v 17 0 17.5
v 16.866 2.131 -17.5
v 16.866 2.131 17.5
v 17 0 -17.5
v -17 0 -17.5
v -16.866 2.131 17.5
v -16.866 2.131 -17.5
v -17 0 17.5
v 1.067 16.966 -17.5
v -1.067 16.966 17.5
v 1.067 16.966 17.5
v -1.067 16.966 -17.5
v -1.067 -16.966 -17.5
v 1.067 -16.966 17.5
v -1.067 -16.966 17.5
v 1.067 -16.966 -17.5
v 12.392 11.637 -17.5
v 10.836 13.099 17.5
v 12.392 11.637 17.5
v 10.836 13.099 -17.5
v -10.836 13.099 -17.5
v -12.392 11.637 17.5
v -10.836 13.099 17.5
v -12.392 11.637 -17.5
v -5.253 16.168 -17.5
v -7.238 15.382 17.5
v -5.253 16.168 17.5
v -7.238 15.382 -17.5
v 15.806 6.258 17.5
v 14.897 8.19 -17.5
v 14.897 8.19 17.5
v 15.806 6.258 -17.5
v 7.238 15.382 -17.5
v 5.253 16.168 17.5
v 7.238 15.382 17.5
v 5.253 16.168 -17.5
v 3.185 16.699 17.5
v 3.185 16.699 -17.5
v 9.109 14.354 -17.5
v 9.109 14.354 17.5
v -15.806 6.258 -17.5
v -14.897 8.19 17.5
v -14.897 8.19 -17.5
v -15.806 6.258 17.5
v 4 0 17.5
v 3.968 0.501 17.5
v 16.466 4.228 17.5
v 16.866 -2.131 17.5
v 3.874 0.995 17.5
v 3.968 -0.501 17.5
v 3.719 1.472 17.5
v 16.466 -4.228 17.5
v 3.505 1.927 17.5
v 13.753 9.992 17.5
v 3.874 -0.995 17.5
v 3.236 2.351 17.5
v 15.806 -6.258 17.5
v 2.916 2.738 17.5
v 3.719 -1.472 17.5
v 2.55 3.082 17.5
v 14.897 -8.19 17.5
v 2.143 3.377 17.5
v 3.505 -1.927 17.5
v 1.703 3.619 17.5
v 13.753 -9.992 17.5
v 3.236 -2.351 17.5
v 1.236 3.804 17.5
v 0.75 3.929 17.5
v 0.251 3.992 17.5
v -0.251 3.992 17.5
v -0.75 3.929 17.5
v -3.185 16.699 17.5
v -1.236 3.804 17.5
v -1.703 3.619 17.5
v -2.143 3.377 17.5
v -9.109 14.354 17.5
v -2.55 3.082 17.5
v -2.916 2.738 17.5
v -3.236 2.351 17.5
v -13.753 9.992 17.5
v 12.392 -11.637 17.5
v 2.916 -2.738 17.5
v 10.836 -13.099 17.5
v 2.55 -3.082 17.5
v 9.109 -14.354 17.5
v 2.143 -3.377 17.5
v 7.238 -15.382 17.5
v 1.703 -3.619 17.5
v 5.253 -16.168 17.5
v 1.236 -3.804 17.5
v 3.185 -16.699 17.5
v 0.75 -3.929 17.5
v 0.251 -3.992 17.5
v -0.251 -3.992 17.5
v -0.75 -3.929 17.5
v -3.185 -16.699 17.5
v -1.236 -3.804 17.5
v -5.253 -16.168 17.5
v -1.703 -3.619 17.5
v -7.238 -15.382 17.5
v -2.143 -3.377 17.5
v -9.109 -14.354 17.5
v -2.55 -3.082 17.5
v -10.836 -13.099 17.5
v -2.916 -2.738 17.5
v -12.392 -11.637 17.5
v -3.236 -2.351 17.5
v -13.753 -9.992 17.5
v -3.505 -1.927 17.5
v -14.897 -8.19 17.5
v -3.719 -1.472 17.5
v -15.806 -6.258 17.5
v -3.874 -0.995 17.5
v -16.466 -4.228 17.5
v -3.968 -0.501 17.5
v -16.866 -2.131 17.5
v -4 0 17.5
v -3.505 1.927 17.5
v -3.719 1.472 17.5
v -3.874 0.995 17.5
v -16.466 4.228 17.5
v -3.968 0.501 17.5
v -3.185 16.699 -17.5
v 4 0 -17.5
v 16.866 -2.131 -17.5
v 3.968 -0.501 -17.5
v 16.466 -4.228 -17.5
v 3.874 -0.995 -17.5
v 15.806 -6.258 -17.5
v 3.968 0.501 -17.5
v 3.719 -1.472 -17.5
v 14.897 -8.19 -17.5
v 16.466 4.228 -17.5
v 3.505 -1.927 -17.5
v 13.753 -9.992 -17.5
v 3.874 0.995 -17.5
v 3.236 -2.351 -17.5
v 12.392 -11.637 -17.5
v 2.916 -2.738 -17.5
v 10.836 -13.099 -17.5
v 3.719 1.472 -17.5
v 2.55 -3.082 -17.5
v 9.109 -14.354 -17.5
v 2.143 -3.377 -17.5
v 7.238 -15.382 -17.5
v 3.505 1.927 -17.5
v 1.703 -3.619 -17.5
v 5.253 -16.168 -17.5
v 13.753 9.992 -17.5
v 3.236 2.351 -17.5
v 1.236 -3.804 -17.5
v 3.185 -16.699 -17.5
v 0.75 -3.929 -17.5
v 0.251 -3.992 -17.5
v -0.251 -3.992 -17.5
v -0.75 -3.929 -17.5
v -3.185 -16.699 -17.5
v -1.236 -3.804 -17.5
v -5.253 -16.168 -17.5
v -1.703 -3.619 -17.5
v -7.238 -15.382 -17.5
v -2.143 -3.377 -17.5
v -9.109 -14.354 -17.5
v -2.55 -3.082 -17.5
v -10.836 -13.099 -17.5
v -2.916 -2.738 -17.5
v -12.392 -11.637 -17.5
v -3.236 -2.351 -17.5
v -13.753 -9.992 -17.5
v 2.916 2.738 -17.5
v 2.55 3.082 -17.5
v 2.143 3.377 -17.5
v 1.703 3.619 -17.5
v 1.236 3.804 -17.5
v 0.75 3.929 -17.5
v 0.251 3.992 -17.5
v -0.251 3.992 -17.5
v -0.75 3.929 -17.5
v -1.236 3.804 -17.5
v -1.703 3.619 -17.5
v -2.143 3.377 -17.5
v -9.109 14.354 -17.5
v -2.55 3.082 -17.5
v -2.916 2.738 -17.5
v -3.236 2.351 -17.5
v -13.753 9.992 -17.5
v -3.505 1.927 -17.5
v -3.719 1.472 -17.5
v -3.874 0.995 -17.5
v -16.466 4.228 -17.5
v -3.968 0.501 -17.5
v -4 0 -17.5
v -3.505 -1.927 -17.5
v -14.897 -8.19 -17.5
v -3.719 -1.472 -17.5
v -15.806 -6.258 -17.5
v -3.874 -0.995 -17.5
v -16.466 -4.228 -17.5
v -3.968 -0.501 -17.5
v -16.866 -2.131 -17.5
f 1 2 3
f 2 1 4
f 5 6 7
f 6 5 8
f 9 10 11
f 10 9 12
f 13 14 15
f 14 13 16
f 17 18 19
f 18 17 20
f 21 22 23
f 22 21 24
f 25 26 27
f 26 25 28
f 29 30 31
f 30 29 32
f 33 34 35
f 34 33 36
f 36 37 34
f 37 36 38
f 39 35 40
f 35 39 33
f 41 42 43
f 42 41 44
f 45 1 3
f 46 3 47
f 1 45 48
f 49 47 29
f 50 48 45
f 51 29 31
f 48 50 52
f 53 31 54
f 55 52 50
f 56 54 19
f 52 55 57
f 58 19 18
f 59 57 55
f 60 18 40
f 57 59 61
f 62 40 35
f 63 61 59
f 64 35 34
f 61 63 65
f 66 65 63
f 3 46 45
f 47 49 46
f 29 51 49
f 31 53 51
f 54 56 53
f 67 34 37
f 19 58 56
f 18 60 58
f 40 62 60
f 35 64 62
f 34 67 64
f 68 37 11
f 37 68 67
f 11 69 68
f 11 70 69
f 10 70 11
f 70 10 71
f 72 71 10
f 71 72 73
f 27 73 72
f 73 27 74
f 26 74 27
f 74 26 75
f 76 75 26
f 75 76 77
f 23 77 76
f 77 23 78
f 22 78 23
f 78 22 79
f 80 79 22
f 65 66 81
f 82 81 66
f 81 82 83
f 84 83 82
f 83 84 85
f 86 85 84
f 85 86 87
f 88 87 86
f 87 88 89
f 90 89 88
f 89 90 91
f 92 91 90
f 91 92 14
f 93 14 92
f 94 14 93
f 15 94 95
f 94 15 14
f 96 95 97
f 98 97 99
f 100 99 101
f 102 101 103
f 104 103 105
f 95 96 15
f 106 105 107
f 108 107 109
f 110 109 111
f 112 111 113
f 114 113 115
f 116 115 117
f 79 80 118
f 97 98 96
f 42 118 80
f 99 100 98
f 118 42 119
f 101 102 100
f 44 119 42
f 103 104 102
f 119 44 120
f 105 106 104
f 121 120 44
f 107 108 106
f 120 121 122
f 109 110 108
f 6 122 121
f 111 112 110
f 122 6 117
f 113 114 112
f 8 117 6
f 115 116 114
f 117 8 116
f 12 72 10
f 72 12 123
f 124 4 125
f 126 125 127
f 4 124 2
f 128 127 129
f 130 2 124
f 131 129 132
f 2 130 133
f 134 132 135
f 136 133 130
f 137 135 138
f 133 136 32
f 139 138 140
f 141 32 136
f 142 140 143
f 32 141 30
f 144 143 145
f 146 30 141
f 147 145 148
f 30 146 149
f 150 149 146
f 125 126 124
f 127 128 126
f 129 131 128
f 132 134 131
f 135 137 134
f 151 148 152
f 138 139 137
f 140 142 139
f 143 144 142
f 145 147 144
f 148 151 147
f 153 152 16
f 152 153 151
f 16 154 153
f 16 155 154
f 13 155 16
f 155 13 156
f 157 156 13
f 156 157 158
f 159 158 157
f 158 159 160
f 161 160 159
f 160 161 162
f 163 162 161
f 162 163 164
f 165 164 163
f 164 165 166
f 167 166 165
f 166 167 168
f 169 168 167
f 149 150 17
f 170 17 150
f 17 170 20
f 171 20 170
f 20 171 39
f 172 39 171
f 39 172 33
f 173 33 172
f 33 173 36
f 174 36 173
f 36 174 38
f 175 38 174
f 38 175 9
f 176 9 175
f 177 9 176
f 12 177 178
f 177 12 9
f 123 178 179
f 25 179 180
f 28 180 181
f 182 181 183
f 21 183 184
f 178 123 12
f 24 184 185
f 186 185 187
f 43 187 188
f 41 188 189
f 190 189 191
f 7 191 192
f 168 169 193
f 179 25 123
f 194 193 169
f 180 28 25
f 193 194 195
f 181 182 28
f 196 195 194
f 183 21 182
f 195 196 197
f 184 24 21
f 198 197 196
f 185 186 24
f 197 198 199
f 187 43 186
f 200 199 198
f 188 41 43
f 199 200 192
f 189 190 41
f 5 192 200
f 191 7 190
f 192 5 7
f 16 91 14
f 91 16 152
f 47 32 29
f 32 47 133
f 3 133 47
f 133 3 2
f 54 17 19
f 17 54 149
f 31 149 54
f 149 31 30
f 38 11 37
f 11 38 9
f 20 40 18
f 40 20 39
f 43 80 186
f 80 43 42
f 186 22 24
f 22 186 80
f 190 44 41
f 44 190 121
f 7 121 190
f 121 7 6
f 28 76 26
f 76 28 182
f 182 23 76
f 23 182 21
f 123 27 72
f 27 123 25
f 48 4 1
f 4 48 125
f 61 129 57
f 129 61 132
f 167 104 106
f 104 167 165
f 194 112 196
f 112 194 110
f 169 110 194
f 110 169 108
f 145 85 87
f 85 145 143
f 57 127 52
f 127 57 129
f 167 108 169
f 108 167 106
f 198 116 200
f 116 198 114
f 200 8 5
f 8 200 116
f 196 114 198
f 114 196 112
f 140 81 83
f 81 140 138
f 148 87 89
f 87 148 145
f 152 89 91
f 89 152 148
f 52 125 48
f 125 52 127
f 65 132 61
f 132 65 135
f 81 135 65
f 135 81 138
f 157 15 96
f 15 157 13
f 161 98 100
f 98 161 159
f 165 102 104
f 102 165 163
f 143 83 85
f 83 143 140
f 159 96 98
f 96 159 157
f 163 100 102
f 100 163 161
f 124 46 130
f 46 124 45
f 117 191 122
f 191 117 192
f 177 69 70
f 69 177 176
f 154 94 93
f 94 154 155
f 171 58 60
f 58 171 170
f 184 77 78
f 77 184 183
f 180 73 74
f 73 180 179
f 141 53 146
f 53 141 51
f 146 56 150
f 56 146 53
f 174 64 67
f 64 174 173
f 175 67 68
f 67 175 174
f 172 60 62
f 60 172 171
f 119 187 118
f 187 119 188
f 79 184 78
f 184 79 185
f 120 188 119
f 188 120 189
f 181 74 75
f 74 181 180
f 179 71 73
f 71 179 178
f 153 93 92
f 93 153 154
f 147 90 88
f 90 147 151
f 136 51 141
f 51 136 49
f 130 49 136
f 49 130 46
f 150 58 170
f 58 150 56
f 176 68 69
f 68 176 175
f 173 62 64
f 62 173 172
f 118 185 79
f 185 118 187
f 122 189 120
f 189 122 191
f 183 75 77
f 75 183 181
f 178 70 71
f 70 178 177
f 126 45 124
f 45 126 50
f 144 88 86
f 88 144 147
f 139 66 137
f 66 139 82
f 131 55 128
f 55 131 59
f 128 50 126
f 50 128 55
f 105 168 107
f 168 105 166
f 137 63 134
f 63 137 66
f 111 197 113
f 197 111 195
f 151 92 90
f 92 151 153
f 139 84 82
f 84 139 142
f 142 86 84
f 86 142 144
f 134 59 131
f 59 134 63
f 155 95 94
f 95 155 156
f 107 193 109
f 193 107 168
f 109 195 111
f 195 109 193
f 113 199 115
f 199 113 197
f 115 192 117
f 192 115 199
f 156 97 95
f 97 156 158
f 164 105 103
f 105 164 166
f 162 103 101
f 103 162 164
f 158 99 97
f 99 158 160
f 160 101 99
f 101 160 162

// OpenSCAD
$fn = 50;


difference() {
	union() {
		translate(v = [0, 0, -17.5000000000]) {
			cylinder(h = 35, r = 17.0000000000);
		}
	}
	union() {
		translate(v = [0, 0, -100.0000000000]) {
			cylinder(h = 200, r = 4);
		}
	}
}
